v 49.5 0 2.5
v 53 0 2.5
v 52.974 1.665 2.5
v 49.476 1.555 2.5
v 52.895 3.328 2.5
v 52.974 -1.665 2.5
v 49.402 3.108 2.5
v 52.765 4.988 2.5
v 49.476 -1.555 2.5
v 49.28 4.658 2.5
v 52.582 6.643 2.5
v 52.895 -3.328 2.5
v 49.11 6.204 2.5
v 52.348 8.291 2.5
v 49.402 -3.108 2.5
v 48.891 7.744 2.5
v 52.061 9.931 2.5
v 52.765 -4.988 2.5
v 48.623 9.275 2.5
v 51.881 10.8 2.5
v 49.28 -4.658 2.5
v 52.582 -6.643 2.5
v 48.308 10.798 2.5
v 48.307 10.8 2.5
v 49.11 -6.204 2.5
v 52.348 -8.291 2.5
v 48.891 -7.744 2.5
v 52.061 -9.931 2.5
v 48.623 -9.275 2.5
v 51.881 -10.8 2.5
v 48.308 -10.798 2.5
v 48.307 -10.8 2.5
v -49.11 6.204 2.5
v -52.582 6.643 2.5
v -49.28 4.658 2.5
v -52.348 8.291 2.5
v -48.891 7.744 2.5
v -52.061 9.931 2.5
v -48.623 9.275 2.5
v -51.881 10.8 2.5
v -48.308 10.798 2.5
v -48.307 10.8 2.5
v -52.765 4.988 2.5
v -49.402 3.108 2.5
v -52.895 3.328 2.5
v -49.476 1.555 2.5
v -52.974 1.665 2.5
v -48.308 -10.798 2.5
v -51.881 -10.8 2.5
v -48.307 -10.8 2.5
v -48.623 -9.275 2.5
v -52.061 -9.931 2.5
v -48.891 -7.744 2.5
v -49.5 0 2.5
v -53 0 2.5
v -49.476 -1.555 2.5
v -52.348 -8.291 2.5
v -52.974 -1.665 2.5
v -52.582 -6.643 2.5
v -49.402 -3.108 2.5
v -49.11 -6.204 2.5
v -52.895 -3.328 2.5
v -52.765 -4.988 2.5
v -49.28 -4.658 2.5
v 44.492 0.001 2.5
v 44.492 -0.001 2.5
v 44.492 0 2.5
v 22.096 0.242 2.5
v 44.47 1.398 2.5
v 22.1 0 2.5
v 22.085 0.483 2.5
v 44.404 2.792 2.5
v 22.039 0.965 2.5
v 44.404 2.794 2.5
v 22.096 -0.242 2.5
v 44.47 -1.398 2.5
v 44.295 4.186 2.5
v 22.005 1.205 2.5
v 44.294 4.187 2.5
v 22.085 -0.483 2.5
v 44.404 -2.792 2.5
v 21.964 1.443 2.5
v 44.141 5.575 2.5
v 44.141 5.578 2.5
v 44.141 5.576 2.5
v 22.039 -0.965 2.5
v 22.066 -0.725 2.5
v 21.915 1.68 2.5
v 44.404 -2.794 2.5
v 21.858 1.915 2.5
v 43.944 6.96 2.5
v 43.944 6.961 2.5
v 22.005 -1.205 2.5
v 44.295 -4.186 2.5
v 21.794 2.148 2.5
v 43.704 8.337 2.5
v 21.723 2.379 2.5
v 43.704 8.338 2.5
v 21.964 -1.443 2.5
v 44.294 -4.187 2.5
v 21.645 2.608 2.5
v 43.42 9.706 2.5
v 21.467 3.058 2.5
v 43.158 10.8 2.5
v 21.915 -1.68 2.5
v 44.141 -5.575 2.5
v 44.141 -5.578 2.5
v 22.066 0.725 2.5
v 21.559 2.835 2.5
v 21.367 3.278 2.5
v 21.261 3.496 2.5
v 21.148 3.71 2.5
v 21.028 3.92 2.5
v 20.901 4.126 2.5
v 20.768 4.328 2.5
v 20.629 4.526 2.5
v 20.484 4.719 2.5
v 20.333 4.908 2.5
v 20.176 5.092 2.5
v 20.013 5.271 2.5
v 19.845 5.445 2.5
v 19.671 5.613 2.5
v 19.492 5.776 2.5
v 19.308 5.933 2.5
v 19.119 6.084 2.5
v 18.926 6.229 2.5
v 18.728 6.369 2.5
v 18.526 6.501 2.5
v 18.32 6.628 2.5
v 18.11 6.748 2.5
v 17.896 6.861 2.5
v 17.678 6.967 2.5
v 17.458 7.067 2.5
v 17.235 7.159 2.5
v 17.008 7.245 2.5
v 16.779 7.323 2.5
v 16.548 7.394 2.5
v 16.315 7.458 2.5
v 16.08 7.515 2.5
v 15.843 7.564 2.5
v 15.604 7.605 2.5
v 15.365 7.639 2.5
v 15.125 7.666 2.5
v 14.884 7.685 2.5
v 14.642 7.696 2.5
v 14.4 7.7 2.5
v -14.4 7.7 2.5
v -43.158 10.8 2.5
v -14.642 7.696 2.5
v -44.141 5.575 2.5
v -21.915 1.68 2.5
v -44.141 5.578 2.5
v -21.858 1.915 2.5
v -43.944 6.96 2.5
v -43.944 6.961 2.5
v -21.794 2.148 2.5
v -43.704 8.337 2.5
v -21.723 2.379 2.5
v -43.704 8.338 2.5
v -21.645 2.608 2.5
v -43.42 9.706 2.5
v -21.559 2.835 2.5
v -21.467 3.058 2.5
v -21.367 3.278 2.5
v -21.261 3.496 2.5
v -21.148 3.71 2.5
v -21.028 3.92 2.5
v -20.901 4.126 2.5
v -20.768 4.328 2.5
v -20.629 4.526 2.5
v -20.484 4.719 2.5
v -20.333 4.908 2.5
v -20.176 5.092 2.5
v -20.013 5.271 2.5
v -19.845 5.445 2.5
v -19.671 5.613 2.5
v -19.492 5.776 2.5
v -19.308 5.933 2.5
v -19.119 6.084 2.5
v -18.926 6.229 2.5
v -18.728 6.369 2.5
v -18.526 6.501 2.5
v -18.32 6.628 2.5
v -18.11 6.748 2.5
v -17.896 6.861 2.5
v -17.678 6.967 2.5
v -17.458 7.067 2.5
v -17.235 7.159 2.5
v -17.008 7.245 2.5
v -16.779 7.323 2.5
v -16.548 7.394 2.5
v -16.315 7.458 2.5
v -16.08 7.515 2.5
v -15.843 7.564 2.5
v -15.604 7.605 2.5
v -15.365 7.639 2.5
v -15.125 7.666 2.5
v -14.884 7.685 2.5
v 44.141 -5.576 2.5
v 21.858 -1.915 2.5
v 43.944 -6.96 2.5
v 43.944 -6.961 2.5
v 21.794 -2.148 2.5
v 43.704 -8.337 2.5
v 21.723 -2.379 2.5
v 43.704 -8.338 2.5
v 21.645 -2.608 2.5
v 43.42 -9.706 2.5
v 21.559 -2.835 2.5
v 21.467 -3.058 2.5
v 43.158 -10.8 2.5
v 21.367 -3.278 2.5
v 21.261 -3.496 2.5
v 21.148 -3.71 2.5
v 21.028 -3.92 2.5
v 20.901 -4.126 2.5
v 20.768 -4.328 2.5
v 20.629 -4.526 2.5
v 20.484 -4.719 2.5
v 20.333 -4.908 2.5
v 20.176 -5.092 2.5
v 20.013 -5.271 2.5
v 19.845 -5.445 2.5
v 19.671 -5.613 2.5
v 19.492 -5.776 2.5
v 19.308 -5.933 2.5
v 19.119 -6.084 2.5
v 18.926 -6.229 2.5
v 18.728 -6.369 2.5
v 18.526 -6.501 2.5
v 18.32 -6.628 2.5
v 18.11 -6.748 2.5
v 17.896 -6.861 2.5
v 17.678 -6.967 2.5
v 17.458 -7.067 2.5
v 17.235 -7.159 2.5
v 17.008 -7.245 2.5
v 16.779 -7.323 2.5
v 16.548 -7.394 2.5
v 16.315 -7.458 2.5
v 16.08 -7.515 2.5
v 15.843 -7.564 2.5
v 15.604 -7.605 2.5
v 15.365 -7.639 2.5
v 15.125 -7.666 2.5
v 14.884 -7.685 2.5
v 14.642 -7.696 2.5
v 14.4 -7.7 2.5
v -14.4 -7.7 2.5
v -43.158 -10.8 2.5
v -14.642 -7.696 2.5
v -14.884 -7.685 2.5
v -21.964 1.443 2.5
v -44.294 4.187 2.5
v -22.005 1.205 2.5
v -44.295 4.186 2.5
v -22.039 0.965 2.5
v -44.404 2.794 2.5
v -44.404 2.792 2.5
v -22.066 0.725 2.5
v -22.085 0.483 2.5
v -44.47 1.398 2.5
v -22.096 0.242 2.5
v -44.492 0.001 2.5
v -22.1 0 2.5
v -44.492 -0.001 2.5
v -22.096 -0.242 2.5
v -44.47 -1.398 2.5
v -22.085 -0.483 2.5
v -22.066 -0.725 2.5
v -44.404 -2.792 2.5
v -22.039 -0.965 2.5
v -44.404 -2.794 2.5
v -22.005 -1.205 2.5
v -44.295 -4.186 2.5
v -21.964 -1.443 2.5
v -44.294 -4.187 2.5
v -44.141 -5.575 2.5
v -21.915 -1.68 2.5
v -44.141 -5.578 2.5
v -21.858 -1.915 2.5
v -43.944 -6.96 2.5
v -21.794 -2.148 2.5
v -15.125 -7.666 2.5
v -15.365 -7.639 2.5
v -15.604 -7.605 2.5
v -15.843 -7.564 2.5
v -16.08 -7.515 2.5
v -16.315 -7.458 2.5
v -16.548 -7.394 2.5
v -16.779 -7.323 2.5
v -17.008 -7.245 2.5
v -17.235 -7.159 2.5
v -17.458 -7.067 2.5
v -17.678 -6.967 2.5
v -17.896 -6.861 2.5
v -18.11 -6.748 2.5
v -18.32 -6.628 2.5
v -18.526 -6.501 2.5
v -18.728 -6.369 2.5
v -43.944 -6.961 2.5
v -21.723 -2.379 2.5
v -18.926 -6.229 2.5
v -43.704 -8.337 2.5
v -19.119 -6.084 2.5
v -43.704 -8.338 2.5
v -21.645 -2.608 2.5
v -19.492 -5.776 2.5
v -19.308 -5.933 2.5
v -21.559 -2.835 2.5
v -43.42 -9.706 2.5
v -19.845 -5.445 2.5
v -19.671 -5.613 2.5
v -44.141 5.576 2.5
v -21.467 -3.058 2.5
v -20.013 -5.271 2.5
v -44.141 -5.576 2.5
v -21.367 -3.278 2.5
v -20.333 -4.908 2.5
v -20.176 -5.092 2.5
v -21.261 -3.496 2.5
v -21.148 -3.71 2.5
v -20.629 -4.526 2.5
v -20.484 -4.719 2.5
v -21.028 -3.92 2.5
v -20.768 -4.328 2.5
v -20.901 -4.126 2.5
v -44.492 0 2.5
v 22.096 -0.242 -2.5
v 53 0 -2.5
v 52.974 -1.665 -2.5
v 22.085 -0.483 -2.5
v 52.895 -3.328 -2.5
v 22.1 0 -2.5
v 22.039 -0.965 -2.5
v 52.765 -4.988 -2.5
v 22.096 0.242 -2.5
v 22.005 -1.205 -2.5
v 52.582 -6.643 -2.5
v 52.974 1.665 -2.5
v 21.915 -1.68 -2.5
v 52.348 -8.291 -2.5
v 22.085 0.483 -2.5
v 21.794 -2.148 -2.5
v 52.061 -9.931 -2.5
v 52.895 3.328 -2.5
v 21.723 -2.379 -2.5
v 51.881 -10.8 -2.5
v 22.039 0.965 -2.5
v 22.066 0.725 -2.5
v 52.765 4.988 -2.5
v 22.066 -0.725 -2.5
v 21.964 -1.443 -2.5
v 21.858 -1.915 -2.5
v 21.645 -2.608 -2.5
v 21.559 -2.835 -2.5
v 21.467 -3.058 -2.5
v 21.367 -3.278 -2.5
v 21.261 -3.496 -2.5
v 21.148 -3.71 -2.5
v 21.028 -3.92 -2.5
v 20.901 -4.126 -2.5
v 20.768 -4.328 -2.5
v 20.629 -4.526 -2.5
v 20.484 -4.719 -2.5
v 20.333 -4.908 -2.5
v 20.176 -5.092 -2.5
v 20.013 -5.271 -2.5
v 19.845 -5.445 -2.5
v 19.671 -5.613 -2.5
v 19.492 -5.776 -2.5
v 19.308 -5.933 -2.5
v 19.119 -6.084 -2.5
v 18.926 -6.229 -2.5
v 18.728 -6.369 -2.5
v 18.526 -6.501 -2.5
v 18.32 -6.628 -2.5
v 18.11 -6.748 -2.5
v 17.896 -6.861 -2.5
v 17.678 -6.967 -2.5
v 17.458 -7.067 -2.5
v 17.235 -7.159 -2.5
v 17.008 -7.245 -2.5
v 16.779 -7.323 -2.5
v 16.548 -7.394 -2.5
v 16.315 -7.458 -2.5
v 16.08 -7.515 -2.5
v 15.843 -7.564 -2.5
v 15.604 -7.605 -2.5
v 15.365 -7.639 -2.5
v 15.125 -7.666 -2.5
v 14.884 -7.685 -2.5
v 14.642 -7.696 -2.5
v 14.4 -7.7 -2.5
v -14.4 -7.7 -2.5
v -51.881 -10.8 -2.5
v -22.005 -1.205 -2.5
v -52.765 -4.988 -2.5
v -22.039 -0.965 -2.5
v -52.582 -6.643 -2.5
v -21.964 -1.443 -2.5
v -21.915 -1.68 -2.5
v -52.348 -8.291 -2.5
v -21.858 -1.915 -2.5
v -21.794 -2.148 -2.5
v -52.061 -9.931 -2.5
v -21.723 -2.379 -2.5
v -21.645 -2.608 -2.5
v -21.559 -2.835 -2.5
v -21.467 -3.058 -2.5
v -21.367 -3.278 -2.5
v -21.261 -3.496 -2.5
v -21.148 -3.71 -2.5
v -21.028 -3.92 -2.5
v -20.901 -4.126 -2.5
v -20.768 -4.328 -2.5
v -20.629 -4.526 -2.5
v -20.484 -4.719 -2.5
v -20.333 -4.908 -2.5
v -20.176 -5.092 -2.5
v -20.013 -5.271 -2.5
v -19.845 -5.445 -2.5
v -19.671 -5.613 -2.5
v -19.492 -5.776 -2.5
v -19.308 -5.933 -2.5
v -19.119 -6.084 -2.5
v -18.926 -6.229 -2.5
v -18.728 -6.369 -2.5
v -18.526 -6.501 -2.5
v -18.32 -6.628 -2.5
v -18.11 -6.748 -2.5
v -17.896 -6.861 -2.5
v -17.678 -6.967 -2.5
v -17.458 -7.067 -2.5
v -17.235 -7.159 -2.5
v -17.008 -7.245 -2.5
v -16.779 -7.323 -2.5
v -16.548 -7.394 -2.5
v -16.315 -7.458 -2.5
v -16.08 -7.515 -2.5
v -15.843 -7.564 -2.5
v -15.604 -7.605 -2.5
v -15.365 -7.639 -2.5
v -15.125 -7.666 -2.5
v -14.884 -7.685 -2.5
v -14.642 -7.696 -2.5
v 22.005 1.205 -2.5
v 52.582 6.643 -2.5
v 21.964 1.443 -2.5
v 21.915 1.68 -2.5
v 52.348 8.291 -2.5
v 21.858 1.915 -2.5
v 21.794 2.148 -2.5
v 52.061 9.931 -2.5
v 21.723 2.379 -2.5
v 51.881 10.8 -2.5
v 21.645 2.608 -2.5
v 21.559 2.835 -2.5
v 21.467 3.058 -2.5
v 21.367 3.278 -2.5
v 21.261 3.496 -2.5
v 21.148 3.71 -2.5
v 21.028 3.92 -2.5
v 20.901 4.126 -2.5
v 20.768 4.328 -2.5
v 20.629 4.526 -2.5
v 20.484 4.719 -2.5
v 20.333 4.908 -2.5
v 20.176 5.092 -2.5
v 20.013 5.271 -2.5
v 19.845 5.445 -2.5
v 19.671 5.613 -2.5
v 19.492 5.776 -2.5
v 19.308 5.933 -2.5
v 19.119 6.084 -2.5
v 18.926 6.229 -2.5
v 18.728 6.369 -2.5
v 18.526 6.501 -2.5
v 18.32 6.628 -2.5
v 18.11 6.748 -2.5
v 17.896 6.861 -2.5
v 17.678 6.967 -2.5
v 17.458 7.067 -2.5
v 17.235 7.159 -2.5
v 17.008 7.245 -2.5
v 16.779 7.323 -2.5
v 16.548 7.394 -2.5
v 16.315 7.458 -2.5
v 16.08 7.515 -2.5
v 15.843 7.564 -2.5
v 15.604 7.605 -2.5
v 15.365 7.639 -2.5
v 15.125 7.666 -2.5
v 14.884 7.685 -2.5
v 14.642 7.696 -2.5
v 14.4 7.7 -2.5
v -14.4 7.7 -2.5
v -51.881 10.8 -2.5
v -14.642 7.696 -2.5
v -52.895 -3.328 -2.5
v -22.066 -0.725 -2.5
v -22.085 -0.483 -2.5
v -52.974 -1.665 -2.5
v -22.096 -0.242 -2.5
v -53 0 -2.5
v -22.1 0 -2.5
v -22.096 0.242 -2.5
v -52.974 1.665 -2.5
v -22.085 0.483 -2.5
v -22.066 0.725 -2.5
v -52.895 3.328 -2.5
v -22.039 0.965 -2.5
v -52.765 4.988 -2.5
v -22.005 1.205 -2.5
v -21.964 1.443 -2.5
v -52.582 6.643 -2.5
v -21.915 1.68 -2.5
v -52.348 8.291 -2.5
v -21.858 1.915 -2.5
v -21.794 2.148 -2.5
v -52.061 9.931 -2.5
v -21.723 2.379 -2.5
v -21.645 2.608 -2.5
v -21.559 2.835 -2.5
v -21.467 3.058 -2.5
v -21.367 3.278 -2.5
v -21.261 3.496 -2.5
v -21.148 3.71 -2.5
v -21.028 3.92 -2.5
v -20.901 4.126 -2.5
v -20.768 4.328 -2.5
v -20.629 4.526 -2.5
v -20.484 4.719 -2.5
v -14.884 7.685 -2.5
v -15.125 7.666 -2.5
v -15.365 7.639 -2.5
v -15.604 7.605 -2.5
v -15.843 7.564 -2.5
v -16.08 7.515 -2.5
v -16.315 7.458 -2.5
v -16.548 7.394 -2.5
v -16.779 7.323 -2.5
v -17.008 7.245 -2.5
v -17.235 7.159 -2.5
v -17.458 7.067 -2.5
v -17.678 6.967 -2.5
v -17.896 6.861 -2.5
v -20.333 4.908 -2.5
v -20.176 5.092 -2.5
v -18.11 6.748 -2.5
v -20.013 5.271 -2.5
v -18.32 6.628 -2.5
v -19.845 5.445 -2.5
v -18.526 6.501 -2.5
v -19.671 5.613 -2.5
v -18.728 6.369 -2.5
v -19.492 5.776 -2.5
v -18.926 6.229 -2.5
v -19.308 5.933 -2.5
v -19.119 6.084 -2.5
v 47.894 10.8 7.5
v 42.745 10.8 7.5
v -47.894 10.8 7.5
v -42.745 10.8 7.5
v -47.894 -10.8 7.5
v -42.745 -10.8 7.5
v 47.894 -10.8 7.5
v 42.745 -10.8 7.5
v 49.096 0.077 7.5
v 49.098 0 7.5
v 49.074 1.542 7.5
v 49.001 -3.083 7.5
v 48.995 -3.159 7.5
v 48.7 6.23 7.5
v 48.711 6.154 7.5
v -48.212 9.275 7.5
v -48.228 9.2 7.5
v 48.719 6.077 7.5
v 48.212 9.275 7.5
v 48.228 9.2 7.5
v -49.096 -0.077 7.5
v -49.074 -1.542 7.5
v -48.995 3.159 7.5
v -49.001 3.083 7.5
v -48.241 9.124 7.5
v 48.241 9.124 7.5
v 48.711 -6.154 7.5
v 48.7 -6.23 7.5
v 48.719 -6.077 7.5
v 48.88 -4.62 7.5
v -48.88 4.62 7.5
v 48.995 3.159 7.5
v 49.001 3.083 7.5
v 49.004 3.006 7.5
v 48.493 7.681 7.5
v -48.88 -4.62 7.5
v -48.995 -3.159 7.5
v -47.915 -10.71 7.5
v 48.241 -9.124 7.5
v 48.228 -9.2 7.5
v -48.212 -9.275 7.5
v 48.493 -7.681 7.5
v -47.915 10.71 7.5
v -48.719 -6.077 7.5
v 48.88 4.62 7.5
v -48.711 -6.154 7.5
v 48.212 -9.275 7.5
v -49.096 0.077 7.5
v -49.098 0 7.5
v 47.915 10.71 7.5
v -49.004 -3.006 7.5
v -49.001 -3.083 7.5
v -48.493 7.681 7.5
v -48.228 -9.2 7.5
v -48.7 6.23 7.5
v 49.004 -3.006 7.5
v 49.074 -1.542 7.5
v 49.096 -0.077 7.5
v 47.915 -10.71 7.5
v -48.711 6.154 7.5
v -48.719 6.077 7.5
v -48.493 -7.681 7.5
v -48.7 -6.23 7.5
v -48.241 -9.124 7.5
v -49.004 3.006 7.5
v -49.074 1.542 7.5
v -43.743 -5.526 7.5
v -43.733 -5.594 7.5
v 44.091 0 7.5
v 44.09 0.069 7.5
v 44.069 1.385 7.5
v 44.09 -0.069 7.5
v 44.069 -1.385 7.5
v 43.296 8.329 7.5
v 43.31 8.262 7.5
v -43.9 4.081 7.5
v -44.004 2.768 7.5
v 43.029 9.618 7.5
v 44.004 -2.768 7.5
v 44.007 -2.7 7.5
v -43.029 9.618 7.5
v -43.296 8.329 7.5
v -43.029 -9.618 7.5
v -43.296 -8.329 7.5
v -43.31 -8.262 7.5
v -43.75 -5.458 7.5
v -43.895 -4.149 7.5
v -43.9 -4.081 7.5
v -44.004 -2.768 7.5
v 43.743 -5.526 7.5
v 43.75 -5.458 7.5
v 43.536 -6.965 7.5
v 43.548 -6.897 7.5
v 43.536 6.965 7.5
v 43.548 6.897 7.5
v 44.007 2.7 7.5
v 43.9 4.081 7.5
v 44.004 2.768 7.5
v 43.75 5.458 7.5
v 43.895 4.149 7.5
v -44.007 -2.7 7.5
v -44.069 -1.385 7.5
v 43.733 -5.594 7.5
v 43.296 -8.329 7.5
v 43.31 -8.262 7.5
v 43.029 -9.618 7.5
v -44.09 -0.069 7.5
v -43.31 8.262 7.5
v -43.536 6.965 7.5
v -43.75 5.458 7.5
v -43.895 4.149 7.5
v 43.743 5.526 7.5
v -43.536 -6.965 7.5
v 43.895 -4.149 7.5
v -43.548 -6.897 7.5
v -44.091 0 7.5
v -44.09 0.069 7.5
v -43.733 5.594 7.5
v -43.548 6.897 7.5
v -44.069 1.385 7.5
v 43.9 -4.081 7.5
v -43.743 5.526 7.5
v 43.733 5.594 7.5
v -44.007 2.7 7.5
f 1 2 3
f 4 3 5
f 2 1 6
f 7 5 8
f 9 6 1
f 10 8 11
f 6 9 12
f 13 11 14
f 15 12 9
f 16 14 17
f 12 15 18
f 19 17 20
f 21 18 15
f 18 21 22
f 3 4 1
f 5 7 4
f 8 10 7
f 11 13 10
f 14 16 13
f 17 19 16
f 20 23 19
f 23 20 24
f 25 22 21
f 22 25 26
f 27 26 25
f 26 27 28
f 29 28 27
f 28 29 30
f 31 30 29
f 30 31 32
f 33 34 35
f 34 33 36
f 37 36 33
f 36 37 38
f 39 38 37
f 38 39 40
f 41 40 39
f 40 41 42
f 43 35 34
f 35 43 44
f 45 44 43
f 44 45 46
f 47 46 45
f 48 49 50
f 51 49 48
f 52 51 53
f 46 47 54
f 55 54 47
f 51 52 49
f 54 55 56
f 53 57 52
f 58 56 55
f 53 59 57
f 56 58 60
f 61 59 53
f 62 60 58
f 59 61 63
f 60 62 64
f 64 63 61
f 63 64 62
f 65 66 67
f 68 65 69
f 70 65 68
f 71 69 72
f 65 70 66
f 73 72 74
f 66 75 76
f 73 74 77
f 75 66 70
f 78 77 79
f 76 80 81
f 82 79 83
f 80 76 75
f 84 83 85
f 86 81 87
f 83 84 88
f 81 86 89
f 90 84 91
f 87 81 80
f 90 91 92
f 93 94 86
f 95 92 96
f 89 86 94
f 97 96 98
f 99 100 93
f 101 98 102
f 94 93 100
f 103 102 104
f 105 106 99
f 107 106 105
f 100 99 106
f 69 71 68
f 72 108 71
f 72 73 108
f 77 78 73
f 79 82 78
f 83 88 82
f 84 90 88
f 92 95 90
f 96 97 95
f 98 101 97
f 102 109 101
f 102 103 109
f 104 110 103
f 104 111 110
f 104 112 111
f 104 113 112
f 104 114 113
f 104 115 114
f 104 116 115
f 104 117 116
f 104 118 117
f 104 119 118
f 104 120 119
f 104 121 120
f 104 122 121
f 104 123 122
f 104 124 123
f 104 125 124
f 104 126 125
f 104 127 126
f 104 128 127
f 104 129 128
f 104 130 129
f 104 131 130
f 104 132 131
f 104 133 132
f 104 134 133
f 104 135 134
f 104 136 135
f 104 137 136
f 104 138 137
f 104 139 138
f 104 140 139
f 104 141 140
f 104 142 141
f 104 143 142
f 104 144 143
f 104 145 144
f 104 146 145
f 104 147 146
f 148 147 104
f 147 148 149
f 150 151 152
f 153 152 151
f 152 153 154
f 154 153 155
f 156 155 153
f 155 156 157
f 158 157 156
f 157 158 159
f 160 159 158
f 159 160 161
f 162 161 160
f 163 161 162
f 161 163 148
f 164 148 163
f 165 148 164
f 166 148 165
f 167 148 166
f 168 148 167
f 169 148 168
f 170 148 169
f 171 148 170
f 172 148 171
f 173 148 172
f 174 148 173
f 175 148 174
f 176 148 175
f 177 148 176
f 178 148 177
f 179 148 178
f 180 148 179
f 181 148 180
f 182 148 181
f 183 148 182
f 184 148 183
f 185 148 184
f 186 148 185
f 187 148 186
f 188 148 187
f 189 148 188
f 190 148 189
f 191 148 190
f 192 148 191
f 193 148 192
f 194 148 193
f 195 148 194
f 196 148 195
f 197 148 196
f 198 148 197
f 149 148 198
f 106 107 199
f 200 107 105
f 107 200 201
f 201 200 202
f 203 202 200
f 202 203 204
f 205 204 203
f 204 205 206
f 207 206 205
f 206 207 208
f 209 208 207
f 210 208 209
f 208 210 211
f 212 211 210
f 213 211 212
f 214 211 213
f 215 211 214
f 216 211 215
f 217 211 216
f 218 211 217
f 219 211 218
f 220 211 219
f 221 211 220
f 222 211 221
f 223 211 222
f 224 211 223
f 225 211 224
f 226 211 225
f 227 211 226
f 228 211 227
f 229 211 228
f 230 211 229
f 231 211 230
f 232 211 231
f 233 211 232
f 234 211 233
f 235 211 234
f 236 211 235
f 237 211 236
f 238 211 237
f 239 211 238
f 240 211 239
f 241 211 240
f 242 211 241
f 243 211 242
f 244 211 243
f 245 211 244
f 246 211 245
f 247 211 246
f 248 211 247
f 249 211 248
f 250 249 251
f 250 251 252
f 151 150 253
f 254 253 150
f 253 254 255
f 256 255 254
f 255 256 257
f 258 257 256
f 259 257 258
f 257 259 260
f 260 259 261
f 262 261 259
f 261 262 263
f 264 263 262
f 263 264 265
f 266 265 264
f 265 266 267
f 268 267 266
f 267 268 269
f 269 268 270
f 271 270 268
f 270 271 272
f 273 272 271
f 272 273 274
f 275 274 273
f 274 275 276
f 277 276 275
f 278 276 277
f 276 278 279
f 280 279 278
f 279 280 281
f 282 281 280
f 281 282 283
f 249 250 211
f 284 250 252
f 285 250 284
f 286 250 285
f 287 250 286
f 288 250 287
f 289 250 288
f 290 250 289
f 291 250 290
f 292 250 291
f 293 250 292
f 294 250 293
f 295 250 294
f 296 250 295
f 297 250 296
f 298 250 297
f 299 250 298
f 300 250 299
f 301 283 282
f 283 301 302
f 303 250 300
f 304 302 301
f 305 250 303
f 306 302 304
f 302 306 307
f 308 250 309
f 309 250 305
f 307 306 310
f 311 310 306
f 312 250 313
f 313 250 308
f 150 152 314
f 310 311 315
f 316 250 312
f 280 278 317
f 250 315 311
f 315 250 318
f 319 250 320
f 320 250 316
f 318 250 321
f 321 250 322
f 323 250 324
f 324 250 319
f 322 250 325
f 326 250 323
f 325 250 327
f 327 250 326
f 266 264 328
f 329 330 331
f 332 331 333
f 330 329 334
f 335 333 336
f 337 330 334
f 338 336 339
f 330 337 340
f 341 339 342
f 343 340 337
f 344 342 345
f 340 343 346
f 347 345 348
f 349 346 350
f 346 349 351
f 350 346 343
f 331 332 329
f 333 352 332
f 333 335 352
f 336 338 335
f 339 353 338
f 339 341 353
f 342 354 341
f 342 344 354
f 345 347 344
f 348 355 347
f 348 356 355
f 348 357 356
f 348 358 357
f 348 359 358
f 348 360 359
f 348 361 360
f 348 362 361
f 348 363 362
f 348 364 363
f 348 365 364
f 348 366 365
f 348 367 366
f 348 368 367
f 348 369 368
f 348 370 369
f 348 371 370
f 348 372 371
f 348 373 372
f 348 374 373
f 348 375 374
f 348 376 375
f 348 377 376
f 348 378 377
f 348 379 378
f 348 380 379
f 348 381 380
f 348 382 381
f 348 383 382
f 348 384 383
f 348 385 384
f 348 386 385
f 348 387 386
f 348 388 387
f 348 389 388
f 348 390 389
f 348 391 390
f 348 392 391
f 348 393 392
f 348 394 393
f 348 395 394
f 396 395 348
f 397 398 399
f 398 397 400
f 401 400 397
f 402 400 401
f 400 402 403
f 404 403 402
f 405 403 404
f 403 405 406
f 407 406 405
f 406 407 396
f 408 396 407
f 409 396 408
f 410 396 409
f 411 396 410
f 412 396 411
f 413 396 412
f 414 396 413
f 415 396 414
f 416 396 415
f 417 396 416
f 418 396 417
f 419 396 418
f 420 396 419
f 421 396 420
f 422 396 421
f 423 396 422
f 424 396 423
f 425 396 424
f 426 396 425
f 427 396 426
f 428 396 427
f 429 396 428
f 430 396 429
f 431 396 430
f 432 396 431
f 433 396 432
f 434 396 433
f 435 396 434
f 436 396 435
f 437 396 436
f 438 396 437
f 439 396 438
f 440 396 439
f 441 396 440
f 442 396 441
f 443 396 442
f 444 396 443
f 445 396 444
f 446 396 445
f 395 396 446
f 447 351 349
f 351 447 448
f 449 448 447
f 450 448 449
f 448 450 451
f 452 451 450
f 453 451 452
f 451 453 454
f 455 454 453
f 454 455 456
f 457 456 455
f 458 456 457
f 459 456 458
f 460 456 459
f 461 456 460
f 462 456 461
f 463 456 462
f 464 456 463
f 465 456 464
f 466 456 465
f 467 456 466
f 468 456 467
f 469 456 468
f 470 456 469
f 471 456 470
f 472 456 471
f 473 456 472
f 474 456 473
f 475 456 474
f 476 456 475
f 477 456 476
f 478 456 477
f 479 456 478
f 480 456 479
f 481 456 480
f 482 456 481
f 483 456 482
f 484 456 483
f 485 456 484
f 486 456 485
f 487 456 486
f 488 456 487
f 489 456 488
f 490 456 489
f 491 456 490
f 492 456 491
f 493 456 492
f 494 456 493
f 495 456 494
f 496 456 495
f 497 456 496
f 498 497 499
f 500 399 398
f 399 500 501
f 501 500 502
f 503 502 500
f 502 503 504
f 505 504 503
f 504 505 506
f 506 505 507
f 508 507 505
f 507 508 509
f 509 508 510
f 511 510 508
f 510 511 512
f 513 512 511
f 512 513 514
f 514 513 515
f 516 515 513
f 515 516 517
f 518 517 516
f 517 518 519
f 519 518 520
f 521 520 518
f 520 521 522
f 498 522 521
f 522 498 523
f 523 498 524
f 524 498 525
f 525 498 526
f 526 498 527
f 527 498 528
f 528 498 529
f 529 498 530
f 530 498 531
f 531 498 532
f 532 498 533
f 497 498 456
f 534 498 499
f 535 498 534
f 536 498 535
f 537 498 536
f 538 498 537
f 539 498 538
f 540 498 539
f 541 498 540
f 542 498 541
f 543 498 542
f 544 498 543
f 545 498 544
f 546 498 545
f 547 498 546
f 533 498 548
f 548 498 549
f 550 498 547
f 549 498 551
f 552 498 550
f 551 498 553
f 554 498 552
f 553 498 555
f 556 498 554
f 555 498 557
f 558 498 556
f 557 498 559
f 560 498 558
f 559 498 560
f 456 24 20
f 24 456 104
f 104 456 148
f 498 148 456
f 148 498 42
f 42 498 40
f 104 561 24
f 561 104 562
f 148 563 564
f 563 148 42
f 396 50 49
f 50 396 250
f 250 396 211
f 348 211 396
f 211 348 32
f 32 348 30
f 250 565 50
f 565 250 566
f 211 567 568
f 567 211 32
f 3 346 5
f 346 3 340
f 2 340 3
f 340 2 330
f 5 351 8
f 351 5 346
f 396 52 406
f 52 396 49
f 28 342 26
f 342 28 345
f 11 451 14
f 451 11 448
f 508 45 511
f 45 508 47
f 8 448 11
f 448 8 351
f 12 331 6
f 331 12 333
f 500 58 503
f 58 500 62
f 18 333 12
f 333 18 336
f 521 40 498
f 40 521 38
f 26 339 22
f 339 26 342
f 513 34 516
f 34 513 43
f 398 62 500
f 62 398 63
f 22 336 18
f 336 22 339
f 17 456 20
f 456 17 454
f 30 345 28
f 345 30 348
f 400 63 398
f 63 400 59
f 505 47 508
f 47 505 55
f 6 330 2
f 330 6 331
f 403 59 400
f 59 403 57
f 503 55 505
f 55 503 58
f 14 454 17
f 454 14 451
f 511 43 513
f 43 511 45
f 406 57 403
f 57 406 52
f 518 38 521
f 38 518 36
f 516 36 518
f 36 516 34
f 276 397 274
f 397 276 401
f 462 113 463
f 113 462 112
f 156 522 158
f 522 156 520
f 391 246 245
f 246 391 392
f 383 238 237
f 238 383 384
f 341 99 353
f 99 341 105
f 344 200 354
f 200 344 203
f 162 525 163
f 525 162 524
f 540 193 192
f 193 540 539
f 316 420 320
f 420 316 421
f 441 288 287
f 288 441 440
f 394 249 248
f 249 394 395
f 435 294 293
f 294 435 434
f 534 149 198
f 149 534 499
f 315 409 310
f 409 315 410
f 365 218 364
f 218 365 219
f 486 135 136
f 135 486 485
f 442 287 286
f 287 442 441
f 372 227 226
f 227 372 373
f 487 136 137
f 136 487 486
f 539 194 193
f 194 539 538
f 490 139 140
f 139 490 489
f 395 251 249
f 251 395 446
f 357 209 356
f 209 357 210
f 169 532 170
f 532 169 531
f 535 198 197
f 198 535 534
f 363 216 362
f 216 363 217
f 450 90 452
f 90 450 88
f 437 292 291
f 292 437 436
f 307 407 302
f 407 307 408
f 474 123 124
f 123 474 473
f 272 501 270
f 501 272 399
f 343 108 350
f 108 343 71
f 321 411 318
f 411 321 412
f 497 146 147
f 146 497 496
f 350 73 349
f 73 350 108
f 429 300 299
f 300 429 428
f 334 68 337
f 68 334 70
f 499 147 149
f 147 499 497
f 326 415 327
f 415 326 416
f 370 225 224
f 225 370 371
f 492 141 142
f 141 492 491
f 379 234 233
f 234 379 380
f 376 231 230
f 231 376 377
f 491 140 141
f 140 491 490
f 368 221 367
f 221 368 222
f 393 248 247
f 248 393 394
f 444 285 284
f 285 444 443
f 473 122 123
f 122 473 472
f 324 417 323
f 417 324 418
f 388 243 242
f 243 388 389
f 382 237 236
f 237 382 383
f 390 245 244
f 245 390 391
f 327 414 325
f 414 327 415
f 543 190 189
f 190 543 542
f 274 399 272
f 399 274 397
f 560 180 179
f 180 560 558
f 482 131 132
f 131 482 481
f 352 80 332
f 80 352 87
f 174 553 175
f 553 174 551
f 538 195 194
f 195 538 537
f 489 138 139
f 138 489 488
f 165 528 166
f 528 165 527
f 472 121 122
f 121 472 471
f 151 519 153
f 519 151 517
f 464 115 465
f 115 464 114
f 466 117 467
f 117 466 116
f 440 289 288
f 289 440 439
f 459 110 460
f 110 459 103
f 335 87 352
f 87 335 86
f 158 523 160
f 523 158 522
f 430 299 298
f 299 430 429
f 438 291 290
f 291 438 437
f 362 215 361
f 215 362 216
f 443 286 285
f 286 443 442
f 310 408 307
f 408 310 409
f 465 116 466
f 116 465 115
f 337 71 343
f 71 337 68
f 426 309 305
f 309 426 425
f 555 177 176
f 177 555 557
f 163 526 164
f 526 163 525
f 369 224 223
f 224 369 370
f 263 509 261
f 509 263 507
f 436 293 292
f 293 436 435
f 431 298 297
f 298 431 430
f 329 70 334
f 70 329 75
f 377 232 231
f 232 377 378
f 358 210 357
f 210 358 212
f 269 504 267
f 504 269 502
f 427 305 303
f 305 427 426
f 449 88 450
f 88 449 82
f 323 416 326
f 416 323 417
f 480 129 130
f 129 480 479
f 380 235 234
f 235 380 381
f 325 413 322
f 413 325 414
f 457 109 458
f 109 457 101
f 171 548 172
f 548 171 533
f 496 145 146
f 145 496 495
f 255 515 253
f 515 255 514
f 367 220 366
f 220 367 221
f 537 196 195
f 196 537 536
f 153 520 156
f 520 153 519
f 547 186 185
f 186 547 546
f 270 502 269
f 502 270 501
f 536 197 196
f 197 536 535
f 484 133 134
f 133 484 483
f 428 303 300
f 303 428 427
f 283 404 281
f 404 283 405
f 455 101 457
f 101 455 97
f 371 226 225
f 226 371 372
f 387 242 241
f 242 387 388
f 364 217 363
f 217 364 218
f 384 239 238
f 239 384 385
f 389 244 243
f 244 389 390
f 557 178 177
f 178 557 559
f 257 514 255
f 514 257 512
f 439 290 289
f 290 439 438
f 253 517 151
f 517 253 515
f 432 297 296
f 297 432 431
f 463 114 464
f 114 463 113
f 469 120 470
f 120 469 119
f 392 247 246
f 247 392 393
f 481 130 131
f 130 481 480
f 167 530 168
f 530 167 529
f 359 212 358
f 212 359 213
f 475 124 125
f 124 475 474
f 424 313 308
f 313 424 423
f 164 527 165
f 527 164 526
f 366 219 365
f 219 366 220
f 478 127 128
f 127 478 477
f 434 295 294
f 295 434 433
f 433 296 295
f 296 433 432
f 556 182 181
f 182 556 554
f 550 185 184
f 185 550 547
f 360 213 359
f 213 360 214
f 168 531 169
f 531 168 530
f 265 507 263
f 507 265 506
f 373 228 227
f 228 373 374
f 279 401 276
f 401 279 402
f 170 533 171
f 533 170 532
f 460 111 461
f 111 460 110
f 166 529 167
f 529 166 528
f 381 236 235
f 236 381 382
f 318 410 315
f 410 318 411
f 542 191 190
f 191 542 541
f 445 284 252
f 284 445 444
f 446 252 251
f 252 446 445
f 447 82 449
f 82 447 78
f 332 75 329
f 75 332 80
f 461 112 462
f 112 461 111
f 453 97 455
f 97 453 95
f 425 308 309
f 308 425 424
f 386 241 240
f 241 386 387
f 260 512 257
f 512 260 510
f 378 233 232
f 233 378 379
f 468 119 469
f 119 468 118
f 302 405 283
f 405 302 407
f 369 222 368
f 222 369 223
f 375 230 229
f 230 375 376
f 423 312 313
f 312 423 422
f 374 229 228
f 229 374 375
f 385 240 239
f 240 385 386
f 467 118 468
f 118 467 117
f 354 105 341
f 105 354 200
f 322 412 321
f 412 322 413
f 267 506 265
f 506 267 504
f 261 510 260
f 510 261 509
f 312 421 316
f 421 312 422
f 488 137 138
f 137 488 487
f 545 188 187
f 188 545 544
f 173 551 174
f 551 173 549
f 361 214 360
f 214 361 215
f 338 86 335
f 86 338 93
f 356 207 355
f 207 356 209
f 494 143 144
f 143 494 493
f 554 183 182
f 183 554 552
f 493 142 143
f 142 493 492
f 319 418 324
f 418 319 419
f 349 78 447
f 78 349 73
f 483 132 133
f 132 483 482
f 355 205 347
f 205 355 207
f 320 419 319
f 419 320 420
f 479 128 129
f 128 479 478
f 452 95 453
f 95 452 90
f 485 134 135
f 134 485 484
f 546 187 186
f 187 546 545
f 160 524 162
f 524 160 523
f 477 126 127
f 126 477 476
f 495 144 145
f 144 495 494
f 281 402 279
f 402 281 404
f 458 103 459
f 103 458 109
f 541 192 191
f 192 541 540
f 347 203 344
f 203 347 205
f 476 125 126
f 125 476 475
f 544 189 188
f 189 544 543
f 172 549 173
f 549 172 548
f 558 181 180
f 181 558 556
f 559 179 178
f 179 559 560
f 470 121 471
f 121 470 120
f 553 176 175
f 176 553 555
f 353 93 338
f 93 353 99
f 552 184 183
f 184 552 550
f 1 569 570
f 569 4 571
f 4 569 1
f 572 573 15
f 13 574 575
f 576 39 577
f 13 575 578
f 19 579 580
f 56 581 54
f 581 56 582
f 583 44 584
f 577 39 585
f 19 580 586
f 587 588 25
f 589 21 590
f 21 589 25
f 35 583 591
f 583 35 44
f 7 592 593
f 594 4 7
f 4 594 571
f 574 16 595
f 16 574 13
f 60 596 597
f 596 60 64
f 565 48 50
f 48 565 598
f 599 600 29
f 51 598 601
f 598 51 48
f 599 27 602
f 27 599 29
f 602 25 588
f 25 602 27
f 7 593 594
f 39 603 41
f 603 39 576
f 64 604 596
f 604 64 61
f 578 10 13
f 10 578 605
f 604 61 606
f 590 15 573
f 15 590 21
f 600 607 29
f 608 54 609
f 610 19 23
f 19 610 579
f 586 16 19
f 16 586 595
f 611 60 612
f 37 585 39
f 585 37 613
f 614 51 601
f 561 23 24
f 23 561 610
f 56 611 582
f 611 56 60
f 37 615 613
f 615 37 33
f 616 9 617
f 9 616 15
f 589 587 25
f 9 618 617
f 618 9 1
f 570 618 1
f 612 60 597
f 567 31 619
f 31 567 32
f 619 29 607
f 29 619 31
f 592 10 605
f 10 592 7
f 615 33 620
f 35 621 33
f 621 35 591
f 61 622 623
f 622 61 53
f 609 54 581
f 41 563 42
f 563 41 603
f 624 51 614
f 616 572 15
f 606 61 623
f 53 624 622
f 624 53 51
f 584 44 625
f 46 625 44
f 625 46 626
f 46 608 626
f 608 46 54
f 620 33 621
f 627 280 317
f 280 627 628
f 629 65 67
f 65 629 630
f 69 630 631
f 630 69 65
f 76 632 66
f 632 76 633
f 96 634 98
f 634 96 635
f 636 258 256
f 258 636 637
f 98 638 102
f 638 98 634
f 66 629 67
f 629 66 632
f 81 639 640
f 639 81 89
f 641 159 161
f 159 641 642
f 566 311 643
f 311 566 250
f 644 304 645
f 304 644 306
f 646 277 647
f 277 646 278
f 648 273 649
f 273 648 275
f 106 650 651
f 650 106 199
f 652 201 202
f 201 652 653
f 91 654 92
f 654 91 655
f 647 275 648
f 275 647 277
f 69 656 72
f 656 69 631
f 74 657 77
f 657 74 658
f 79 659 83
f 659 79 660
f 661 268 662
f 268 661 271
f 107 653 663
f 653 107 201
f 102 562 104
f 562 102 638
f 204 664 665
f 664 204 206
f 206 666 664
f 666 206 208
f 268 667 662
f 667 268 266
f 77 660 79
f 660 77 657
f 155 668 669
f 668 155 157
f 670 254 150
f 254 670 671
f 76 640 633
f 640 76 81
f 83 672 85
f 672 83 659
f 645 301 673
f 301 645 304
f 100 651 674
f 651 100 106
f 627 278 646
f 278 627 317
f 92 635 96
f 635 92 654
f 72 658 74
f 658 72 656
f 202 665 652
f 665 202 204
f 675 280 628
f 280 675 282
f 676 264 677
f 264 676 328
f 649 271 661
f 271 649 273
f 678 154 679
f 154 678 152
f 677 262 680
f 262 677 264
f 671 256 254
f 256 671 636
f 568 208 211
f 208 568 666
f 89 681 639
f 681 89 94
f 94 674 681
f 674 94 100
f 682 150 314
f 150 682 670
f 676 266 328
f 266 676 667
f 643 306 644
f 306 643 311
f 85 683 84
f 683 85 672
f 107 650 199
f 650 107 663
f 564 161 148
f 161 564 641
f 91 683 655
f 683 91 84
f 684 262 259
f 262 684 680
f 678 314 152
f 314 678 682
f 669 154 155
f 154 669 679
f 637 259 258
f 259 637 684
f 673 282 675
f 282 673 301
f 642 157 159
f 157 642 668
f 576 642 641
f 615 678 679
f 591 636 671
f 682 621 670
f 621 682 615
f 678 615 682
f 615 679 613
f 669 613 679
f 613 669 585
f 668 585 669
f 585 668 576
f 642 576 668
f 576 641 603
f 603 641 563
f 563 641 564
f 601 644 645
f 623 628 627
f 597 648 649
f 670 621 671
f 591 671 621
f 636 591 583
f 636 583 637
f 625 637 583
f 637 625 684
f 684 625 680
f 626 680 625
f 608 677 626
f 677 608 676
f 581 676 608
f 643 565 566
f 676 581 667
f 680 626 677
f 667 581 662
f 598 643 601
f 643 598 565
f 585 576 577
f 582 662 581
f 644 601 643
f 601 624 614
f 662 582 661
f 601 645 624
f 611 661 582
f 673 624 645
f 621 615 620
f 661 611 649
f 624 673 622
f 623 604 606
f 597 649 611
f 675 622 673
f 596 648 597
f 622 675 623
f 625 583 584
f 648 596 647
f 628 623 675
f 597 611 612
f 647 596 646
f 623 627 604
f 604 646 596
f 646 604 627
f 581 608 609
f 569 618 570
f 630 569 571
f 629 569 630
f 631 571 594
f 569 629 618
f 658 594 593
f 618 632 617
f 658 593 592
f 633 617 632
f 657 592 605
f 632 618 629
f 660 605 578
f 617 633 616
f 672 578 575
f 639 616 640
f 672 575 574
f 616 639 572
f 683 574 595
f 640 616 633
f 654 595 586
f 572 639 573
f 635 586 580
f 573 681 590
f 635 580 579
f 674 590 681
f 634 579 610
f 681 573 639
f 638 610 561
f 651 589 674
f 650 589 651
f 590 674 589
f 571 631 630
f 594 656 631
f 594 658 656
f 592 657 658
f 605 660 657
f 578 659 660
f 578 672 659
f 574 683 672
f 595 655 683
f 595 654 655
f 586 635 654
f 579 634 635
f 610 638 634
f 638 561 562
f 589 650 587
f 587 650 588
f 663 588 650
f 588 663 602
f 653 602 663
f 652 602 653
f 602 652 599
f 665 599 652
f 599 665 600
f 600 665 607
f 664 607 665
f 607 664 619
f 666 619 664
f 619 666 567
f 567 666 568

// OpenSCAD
/*
*
*   Porte tube pour electrolyseur
*
*   modèle paramétrique
*
*/

// dimensions ----------------
// -- cuve
epaisseur_plastique = 2.5;  //mm
diametre_exterieur_haut_cuve = 106;  //mm
diametre_exterieur_bas_cuve = 92;  //mm
hauteur_cuve = 87;  //mm
diametre_interieur_haut_cuve = diametre_exterieur_haut_cuve-2 * epaisseur_plastique;
diametre_interieur_bas_cuve = diametre_exterieur_bas_cuve - 2 * epaisseur_plastique;
// -- tube
diametre_tube = 14.4;  //mm
// -- pièce
depassement_piece = 2 * epaisseur_plastique;  //mm
longueur_piece = diametre_interieur_haut_cuve + depassement_piece;
largeur_piece = 1.5 * diametre_tube;
epaisseur_piece = 5;  //mm
// -- ergots
hauteur_ergot = epaisseur_piece;  //mm
epaisseur_ergot = 5;  //mm
// -- tolérances
tolerance_tube = 1;  //mm
tolerance_ergot = 2;  //mm

//finesse (dégradée en preview)
$fn=$preview?40:200;

//piece
corps();
translate([0,0,epaisseur_piece]) ergos();
//installation en preview
if($preview) translate([0,0,epaisseur_piece/2]) color("grey", 0.6){
    cuve();
    translate([diametre_tube,0,hauteur_cuve-2]) tube();
    translate([-diametre_tube,0,hauteur_cuve-2]) tube();
}

//parties --------------------
module corps(){
    difference(){
        //corps plein
        intersection(){
            cube([longueur_piece,
                  largeur_piece,
                  epaisseur_piece], center=true);
            cylinder(d=longueur_piece,
                     h=epaisseur_piece, center=true);
        }
        //trou tubes
        hull(){
            translate([diametre_tube,0,0]) cylinder(d=diametre_tube + tolerance_tube, h=epaisseur_piece+0.2,center=true);
            translate([-diametre_tube,0,0]) cylinder(d=diametre_tube + tolerance_tube, h=epaisseur_piece+0.2,center=true);
        }
    }
}

module ergos(){
    intersection(){
        translate([0,0,-epaisseur_piece/2]) difference(){
            cylinder(d1=diametre_interieur_haut_cuve-tolerance_ergot,
                     d2=diametre_interieur_bas_cuve-tolerance_ergot,
                     h=hauteur_cuve);
            translate([0,0,-0.1]) cylinder(d1=diametre_interieur_haut_cuve-2*epaisseur_ergot-tolerance_ergot,
                                           d2=diametre_interieur_bas_cuve-2*epaisseur_ergot-tolerance_ergot,
                                           h=hauteur_cuve+0.2);
        }
        corps();
    }
}

module cuve(){
    //cuve
    difference(){
        cylinder(d1=diametre_exterieur_haut_cuve, d2=diametre_exterieur_bas_cuve,h=hauteur_cuve);
        translate([0,0,-0.1]) cylinder(d1=diametre_interieur_haut_cuve, d2=diametre_interieur_bas_cuve,h=hauteur_cuve+0.2);
    }
    translate([0,0,hauteur_cuve-epaisseur_plastique]) cylinder(d=diametre_interieur_bas_cuve,h=epaisseur_plastique);
}

module tube(h_tube=200){
    rotate([0,180,0]) cylinder(d=diametre_tube,h=h_tube);
}
